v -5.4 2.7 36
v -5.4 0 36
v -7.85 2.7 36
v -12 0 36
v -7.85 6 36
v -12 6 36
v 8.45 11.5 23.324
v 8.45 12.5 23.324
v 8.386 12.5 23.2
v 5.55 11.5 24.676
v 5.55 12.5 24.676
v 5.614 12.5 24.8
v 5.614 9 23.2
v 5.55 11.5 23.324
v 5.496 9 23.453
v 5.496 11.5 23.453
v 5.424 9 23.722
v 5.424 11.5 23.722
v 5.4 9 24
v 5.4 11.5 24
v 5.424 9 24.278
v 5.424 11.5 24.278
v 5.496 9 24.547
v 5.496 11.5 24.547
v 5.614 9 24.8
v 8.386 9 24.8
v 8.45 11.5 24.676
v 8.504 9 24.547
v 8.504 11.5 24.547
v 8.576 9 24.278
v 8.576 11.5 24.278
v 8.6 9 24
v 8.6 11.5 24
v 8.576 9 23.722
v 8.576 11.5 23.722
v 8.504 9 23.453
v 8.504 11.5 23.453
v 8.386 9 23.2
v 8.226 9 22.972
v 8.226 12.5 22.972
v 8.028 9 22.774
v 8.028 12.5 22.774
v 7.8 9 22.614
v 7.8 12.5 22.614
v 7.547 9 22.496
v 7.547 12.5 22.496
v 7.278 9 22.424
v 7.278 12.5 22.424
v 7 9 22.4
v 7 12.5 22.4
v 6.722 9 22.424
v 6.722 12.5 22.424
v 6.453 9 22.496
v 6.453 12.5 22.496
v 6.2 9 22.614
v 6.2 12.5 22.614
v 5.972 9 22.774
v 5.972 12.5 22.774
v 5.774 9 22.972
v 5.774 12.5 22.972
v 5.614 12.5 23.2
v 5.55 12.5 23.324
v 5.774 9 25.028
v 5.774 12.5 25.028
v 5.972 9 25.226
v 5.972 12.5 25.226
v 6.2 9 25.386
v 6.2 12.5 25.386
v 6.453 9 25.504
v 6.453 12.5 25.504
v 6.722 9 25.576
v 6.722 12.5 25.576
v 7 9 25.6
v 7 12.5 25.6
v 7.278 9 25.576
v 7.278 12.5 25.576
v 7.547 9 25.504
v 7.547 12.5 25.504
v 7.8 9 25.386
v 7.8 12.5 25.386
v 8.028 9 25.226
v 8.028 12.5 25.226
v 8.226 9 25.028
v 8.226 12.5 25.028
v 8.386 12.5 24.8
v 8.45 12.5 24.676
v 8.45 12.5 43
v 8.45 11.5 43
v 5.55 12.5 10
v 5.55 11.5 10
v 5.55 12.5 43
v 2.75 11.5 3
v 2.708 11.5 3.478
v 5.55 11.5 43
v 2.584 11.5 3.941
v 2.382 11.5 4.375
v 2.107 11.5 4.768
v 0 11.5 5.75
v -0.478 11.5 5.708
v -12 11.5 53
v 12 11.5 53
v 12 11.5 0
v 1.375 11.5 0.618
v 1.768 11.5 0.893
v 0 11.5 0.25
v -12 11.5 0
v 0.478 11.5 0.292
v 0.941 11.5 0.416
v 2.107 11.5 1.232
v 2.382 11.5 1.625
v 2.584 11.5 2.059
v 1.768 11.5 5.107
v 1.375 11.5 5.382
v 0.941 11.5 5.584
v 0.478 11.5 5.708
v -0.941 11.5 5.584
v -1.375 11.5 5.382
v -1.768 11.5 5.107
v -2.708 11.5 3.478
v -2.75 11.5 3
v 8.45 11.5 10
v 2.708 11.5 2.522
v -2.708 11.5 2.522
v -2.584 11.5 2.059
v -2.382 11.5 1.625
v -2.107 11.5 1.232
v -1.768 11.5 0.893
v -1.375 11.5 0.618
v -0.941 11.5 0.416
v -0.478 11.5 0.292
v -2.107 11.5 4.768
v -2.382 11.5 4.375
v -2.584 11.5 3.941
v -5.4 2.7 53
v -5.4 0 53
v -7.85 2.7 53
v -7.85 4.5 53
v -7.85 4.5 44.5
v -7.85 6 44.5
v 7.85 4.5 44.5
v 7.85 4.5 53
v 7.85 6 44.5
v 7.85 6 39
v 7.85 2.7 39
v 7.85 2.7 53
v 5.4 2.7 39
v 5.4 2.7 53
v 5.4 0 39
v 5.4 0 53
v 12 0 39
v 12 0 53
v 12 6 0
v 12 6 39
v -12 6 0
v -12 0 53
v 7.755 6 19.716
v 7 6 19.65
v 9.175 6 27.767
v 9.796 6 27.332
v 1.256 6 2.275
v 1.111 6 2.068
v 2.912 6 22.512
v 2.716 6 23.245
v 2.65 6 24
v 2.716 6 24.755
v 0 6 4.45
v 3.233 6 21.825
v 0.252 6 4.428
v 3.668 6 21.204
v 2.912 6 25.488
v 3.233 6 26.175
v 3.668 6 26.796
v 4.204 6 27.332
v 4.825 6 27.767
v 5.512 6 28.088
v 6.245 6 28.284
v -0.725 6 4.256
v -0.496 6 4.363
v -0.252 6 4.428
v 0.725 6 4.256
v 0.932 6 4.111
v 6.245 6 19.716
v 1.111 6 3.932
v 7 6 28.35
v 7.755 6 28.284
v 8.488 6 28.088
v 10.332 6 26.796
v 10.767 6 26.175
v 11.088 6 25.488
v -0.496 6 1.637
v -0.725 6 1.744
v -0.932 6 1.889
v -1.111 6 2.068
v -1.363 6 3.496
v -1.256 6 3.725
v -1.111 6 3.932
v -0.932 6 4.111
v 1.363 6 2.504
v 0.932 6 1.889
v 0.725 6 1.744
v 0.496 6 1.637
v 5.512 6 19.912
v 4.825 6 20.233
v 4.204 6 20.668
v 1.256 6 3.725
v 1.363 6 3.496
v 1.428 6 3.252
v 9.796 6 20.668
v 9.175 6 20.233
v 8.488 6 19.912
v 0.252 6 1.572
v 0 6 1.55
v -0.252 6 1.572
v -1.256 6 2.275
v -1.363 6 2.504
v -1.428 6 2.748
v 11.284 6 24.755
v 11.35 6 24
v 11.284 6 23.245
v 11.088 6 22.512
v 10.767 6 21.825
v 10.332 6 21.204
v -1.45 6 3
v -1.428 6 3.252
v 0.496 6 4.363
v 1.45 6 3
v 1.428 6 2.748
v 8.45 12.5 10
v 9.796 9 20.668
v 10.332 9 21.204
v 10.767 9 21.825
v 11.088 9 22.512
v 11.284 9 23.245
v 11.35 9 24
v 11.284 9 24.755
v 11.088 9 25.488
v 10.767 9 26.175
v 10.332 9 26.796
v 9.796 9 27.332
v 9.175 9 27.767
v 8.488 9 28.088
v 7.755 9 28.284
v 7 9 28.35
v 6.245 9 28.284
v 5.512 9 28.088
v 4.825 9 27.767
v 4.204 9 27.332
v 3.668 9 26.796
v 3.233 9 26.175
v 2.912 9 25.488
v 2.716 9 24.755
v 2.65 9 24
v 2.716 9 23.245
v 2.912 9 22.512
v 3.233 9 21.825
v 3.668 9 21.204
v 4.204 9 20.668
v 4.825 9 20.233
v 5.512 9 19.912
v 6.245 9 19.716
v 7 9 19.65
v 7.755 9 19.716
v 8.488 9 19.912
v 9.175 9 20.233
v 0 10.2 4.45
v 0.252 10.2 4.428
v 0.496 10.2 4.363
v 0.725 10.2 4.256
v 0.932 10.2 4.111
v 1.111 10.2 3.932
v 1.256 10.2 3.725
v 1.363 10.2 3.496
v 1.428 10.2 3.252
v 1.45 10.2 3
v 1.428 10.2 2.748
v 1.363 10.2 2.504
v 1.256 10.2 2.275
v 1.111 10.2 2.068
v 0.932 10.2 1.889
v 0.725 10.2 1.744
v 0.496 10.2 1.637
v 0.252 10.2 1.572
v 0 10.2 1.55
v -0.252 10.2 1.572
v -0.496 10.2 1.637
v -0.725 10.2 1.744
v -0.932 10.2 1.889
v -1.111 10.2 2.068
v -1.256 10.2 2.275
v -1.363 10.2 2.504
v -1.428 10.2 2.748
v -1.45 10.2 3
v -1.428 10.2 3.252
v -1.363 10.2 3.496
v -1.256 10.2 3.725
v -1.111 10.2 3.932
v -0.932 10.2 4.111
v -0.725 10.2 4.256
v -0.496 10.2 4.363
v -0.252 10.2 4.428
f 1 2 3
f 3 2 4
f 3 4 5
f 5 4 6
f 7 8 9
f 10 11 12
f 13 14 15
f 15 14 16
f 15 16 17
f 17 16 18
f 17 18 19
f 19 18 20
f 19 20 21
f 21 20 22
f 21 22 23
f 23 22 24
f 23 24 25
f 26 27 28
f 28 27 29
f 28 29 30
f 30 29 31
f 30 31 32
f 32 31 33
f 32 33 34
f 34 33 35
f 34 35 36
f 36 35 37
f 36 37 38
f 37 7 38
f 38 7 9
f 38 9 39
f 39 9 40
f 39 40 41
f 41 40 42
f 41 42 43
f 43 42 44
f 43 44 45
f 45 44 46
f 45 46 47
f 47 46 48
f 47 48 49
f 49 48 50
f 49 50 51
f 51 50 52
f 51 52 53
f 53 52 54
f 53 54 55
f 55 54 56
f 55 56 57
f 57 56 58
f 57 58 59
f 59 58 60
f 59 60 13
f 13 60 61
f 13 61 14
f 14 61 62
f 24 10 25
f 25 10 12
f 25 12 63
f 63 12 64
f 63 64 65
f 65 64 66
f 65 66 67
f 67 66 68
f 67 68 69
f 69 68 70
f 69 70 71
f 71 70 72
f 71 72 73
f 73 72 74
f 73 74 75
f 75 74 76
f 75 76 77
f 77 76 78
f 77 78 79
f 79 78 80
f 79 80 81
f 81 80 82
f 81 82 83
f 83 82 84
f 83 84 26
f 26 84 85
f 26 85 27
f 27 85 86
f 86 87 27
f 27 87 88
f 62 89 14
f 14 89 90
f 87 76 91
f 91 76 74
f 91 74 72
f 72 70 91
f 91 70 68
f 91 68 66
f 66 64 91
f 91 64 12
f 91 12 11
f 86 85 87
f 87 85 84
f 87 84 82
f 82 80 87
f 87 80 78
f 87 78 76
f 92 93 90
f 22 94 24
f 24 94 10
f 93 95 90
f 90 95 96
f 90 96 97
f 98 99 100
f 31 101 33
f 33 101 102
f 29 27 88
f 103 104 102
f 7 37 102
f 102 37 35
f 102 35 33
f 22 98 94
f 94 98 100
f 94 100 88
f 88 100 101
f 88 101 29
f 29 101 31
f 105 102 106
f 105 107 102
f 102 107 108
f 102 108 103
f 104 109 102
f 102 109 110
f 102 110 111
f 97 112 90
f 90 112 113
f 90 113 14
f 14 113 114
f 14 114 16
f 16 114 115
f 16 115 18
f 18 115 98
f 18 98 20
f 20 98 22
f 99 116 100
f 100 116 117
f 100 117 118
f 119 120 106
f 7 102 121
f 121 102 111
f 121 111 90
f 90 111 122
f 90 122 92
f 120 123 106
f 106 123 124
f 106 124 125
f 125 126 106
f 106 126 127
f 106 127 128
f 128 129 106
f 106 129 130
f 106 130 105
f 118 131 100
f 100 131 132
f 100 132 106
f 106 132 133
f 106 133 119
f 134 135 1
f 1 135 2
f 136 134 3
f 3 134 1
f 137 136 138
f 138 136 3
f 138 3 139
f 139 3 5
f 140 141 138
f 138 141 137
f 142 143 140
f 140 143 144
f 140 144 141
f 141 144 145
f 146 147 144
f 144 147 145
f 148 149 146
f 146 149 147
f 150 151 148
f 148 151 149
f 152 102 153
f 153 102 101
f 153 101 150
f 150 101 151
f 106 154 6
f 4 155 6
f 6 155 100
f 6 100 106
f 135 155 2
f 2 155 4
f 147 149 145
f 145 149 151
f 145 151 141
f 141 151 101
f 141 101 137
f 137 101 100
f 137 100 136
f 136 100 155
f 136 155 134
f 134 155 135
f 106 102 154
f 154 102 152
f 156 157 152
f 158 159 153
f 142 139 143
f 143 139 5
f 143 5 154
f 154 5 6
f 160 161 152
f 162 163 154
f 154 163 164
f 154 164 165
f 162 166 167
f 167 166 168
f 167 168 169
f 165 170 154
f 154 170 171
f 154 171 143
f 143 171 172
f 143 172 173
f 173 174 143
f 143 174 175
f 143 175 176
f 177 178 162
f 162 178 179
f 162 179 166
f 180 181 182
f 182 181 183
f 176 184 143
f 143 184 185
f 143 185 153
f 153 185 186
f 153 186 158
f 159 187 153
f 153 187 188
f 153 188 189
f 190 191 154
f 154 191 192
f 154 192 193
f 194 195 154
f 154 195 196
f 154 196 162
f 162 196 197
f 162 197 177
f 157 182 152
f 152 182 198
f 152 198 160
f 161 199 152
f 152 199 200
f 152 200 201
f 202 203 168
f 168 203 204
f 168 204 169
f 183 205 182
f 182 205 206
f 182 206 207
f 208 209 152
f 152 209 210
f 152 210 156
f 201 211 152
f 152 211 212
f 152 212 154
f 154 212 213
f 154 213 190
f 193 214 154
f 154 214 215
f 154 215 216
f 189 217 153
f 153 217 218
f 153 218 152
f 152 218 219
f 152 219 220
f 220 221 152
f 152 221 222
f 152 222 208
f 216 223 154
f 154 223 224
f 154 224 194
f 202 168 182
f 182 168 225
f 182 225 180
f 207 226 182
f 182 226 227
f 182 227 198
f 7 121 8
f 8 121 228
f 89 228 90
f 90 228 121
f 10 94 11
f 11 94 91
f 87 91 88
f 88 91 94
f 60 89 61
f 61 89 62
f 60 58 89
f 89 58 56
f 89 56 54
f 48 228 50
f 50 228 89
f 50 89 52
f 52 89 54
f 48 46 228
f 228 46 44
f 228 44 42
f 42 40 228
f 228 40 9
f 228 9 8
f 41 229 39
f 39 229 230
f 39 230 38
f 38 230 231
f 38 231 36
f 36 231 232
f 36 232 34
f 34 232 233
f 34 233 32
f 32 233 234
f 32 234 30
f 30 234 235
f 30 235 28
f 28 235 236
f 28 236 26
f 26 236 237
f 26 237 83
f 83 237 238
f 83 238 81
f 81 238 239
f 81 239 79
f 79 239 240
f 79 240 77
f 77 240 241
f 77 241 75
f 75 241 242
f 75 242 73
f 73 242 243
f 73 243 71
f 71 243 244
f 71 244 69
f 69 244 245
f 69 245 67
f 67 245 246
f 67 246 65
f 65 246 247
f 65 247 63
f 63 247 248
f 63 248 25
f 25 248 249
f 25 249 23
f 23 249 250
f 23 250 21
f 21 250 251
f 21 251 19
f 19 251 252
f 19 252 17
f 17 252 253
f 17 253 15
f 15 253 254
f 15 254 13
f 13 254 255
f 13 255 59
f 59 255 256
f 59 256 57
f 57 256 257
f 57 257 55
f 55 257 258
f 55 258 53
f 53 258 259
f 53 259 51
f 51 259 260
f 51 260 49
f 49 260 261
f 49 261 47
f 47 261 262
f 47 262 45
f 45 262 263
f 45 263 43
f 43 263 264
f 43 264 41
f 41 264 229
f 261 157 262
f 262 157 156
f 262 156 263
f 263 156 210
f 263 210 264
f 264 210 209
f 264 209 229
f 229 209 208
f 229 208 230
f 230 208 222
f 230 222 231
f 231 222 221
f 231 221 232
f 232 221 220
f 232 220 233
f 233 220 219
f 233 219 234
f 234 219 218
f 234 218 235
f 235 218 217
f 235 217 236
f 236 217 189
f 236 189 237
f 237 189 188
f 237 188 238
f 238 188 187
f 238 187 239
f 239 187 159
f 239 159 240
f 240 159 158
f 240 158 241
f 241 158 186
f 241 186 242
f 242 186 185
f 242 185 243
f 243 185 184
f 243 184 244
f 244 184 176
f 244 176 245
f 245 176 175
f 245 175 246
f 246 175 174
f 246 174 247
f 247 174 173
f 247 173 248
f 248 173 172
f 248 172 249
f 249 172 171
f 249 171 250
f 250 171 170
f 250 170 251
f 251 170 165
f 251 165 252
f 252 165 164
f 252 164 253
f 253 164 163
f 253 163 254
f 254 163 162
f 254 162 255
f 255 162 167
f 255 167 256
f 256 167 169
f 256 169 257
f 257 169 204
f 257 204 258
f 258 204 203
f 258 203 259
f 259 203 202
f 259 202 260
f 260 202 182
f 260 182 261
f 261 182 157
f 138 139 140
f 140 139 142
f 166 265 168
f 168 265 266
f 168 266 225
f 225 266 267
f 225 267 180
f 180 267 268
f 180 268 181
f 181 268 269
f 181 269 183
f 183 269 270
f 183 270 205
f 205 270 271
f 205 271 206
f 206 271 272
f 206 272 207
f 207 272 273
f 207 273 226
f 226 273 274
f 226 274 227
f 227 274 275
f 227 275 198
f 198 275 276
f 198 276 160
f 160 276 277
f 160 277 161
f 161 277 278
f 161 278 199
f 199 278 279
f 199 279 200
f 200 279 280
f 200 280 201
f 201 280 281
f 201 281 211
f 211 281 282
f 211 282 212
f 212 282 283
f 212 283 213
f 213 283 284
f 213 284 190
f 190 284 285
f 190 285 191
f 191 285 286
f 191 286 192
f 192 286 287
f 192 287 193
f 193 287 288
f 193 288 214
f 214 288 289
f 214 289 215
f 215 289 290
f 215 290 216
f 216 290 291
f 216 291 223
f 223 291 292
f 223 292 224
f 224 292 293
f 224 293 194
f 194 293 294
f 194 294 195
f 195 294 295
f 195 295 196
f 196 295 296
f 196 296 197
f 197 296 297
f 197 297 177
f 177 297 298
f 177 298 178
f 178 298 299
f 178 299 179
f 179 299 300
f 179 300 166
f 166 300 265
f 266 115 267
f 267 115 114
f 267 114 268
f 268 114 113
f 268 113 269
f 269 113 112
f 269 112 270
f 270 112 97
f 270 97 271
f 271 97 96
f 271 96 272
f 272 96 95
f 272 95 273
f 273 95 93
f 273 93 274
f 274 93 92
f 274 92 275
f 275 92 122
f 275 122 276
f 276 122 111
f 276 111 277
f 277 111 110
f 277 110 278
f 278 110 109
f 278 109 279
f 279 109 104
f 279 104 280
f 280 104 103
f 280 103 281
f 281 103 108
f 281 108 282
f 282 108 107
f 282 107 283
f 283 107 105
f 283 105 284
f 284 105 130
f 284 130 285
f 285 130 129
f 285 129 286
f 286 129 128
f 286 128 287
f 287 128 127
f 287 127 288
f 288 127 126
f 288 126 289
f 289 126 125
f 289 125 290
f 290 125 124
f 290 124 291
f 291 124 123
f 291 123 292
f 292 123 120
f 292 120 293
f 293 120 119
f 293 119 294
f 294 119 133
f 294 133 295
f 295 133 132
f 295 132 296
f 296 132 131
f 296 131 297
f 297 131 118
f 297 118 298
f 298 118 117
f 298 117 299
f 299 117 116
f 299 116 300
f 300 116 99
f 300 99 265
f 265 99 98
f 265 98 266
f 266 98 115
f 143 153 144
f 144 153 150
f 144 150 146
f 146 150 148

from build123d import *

# Parameters (mm, degrees)
MAIN_DEPTH                                        = 53
SKETCH2_W                                         = 24
SKETCH2_H                                         = 36
CUT_EXTRUDE1_DEPTH                                = 6
SKETCH3_W                                         = 2.9
SKETCH3_H                                         = 33
MAKERBEAMRAIL_DEPTH                               = 1
SKETCH4_R                                         = 1.6
MAKERBEAMHOLE_DEPTH                               = 13.5
SKETCH5_R                                         = 4.35
MAKERBEAMBIGHOLE_DEPTH                            = 3
SKETCH6_W                                         = 15.7
SKETCH6_H                                         = 8.5
PINHOLES_DEPTH                                    = 1.5
CSK_FOR_M2_5_FLAT_HEAD_MACHINE_SCREW1_D           = 2.9
CSK_FOR_M2_5_FLAT_HEAD_MACHINE_SCREW1_CSINK_D     = 5.5
CSK_FOR_M2_5_FLAT_HEAD_MACHINE_SCREW1_CSINK_ANGLE = 90
SKETCH9_W                                         = 6.6
SKETCH9_H                                         = 3
CUT_EXTRUDE5_DEPTH                                = 6


with BuildPart() as part:
    # Sketch1 → Main (new body)
    with BuildSketch(Plane.XY):
        Polygon((12, 0), (5.4, 0), (5.4, 2.7), (7.85, 2.7), (7.85, 4.5), (-7.85, 4.5), (-7.85, 2.7), (-5.4, 2.7), (-5.4, 0), (-12, 0), (-12, 11.5), (12, 11.5), align=None)
    extrude(amount=MAIN_DEPTH)

    # Sketch2 → Cut-Extrude1 (cut)
    with BuildSketch(Plane(origin=(0, 0, 0), x_dir=(1, 0, 0), z_dir=(0, 1, 0))):
        with Locations((0, -18)):
            Rectangle(SKETCH2_W, SKETCH2_H)
    extrude(amount=CUT_EXTRUDE1_DEPTH, mode=Mode.SUBTRACT)

    # Sketch3 → MakerBeamRail (add)
    with BuildSketch(Plane(origin=(0, 11.5, 0), x_dir=(1, 0, 0), z_dir=(0, 1, 0))):
        with Locations((7, -26.5)):
            Rectangle(SKETCH3_W, SKETCH3_H)
    extrude(amount=MAKERBEAMRAIL_DEPTH)

    # Sketch4 → MakerBeamHole (cut, through all)
    with BuildSketch(Plane(origin=(0, 12.5, 0), x_dir=(1, 0, 0), z_dir=(0, 1, 0))):
        with Locations((7, -24)):
            Circle(SKETCH4_R)
    extrude(amount=-MAKERBEAMHOLE_DEPTH, mode=Mode.SUBTRACT)

    # Sketch5 → MakerBeamBigHole (cut)
    with BuildSketch(Plane(origin=(0, 6, 0), x_dir=(-1, 0, 0), z_dir=(0, -1, 0))):
        with Locations((-7, -24)):
            Circle(SKETCH5_R)
    extrude(amount=-MAKERBEAMBIGHOLE_DEPTH, mode=Mode.SUBTRACT)

    # Sketch6 → PinHoles (cut)
    with BuildSketch(Plane.XZ.offset(-4.5)):
        with Locations((0, 40.25)):
            Rectangle(SKETCH6_W, SKETCH6_H)
    extrude(amount=-PINHOLES_DEPTH, mode=Mode.SUBTRACT)

    # CSK for M2.5 Flat Head Machine Screw1 (through all)
    with Locations(Plane(origin=(0, 11.5, 0), x_dir=(1, 0, 0), z_dir=(0, 1, 0))):
        with Locations((0, -3)):
            CounterSinkHole(CSK_FOR_M2_5_FLAT_HEAD_MACHINE_SCREW1_D / 2, CSK_FOR_M2_5_FLAT_HEAD_MACHINE_SCREW1_CSINK_D / 2, counter_sink_angle=CSK_FOR_M2_5_FLAT_HEAD_MACHINE_SCREW1_CSINK_ANGLE)

    # Sketch9 → Cut-Extrude5 (cut)
    with BuildSketch(Plane(origin=(0, 0, 0), x_dir=(-1, 0, 0), z_dir=(0, -1, 0))):
        with Locations((-8.7, -37.5)):
            Rectangle(SKETCH9_W, SKETCH9_H)
    extrude(amount=-CUT_EXTRUDE5_DEPTH, mode=Mode.SUBTRACT)


solid = part.part
